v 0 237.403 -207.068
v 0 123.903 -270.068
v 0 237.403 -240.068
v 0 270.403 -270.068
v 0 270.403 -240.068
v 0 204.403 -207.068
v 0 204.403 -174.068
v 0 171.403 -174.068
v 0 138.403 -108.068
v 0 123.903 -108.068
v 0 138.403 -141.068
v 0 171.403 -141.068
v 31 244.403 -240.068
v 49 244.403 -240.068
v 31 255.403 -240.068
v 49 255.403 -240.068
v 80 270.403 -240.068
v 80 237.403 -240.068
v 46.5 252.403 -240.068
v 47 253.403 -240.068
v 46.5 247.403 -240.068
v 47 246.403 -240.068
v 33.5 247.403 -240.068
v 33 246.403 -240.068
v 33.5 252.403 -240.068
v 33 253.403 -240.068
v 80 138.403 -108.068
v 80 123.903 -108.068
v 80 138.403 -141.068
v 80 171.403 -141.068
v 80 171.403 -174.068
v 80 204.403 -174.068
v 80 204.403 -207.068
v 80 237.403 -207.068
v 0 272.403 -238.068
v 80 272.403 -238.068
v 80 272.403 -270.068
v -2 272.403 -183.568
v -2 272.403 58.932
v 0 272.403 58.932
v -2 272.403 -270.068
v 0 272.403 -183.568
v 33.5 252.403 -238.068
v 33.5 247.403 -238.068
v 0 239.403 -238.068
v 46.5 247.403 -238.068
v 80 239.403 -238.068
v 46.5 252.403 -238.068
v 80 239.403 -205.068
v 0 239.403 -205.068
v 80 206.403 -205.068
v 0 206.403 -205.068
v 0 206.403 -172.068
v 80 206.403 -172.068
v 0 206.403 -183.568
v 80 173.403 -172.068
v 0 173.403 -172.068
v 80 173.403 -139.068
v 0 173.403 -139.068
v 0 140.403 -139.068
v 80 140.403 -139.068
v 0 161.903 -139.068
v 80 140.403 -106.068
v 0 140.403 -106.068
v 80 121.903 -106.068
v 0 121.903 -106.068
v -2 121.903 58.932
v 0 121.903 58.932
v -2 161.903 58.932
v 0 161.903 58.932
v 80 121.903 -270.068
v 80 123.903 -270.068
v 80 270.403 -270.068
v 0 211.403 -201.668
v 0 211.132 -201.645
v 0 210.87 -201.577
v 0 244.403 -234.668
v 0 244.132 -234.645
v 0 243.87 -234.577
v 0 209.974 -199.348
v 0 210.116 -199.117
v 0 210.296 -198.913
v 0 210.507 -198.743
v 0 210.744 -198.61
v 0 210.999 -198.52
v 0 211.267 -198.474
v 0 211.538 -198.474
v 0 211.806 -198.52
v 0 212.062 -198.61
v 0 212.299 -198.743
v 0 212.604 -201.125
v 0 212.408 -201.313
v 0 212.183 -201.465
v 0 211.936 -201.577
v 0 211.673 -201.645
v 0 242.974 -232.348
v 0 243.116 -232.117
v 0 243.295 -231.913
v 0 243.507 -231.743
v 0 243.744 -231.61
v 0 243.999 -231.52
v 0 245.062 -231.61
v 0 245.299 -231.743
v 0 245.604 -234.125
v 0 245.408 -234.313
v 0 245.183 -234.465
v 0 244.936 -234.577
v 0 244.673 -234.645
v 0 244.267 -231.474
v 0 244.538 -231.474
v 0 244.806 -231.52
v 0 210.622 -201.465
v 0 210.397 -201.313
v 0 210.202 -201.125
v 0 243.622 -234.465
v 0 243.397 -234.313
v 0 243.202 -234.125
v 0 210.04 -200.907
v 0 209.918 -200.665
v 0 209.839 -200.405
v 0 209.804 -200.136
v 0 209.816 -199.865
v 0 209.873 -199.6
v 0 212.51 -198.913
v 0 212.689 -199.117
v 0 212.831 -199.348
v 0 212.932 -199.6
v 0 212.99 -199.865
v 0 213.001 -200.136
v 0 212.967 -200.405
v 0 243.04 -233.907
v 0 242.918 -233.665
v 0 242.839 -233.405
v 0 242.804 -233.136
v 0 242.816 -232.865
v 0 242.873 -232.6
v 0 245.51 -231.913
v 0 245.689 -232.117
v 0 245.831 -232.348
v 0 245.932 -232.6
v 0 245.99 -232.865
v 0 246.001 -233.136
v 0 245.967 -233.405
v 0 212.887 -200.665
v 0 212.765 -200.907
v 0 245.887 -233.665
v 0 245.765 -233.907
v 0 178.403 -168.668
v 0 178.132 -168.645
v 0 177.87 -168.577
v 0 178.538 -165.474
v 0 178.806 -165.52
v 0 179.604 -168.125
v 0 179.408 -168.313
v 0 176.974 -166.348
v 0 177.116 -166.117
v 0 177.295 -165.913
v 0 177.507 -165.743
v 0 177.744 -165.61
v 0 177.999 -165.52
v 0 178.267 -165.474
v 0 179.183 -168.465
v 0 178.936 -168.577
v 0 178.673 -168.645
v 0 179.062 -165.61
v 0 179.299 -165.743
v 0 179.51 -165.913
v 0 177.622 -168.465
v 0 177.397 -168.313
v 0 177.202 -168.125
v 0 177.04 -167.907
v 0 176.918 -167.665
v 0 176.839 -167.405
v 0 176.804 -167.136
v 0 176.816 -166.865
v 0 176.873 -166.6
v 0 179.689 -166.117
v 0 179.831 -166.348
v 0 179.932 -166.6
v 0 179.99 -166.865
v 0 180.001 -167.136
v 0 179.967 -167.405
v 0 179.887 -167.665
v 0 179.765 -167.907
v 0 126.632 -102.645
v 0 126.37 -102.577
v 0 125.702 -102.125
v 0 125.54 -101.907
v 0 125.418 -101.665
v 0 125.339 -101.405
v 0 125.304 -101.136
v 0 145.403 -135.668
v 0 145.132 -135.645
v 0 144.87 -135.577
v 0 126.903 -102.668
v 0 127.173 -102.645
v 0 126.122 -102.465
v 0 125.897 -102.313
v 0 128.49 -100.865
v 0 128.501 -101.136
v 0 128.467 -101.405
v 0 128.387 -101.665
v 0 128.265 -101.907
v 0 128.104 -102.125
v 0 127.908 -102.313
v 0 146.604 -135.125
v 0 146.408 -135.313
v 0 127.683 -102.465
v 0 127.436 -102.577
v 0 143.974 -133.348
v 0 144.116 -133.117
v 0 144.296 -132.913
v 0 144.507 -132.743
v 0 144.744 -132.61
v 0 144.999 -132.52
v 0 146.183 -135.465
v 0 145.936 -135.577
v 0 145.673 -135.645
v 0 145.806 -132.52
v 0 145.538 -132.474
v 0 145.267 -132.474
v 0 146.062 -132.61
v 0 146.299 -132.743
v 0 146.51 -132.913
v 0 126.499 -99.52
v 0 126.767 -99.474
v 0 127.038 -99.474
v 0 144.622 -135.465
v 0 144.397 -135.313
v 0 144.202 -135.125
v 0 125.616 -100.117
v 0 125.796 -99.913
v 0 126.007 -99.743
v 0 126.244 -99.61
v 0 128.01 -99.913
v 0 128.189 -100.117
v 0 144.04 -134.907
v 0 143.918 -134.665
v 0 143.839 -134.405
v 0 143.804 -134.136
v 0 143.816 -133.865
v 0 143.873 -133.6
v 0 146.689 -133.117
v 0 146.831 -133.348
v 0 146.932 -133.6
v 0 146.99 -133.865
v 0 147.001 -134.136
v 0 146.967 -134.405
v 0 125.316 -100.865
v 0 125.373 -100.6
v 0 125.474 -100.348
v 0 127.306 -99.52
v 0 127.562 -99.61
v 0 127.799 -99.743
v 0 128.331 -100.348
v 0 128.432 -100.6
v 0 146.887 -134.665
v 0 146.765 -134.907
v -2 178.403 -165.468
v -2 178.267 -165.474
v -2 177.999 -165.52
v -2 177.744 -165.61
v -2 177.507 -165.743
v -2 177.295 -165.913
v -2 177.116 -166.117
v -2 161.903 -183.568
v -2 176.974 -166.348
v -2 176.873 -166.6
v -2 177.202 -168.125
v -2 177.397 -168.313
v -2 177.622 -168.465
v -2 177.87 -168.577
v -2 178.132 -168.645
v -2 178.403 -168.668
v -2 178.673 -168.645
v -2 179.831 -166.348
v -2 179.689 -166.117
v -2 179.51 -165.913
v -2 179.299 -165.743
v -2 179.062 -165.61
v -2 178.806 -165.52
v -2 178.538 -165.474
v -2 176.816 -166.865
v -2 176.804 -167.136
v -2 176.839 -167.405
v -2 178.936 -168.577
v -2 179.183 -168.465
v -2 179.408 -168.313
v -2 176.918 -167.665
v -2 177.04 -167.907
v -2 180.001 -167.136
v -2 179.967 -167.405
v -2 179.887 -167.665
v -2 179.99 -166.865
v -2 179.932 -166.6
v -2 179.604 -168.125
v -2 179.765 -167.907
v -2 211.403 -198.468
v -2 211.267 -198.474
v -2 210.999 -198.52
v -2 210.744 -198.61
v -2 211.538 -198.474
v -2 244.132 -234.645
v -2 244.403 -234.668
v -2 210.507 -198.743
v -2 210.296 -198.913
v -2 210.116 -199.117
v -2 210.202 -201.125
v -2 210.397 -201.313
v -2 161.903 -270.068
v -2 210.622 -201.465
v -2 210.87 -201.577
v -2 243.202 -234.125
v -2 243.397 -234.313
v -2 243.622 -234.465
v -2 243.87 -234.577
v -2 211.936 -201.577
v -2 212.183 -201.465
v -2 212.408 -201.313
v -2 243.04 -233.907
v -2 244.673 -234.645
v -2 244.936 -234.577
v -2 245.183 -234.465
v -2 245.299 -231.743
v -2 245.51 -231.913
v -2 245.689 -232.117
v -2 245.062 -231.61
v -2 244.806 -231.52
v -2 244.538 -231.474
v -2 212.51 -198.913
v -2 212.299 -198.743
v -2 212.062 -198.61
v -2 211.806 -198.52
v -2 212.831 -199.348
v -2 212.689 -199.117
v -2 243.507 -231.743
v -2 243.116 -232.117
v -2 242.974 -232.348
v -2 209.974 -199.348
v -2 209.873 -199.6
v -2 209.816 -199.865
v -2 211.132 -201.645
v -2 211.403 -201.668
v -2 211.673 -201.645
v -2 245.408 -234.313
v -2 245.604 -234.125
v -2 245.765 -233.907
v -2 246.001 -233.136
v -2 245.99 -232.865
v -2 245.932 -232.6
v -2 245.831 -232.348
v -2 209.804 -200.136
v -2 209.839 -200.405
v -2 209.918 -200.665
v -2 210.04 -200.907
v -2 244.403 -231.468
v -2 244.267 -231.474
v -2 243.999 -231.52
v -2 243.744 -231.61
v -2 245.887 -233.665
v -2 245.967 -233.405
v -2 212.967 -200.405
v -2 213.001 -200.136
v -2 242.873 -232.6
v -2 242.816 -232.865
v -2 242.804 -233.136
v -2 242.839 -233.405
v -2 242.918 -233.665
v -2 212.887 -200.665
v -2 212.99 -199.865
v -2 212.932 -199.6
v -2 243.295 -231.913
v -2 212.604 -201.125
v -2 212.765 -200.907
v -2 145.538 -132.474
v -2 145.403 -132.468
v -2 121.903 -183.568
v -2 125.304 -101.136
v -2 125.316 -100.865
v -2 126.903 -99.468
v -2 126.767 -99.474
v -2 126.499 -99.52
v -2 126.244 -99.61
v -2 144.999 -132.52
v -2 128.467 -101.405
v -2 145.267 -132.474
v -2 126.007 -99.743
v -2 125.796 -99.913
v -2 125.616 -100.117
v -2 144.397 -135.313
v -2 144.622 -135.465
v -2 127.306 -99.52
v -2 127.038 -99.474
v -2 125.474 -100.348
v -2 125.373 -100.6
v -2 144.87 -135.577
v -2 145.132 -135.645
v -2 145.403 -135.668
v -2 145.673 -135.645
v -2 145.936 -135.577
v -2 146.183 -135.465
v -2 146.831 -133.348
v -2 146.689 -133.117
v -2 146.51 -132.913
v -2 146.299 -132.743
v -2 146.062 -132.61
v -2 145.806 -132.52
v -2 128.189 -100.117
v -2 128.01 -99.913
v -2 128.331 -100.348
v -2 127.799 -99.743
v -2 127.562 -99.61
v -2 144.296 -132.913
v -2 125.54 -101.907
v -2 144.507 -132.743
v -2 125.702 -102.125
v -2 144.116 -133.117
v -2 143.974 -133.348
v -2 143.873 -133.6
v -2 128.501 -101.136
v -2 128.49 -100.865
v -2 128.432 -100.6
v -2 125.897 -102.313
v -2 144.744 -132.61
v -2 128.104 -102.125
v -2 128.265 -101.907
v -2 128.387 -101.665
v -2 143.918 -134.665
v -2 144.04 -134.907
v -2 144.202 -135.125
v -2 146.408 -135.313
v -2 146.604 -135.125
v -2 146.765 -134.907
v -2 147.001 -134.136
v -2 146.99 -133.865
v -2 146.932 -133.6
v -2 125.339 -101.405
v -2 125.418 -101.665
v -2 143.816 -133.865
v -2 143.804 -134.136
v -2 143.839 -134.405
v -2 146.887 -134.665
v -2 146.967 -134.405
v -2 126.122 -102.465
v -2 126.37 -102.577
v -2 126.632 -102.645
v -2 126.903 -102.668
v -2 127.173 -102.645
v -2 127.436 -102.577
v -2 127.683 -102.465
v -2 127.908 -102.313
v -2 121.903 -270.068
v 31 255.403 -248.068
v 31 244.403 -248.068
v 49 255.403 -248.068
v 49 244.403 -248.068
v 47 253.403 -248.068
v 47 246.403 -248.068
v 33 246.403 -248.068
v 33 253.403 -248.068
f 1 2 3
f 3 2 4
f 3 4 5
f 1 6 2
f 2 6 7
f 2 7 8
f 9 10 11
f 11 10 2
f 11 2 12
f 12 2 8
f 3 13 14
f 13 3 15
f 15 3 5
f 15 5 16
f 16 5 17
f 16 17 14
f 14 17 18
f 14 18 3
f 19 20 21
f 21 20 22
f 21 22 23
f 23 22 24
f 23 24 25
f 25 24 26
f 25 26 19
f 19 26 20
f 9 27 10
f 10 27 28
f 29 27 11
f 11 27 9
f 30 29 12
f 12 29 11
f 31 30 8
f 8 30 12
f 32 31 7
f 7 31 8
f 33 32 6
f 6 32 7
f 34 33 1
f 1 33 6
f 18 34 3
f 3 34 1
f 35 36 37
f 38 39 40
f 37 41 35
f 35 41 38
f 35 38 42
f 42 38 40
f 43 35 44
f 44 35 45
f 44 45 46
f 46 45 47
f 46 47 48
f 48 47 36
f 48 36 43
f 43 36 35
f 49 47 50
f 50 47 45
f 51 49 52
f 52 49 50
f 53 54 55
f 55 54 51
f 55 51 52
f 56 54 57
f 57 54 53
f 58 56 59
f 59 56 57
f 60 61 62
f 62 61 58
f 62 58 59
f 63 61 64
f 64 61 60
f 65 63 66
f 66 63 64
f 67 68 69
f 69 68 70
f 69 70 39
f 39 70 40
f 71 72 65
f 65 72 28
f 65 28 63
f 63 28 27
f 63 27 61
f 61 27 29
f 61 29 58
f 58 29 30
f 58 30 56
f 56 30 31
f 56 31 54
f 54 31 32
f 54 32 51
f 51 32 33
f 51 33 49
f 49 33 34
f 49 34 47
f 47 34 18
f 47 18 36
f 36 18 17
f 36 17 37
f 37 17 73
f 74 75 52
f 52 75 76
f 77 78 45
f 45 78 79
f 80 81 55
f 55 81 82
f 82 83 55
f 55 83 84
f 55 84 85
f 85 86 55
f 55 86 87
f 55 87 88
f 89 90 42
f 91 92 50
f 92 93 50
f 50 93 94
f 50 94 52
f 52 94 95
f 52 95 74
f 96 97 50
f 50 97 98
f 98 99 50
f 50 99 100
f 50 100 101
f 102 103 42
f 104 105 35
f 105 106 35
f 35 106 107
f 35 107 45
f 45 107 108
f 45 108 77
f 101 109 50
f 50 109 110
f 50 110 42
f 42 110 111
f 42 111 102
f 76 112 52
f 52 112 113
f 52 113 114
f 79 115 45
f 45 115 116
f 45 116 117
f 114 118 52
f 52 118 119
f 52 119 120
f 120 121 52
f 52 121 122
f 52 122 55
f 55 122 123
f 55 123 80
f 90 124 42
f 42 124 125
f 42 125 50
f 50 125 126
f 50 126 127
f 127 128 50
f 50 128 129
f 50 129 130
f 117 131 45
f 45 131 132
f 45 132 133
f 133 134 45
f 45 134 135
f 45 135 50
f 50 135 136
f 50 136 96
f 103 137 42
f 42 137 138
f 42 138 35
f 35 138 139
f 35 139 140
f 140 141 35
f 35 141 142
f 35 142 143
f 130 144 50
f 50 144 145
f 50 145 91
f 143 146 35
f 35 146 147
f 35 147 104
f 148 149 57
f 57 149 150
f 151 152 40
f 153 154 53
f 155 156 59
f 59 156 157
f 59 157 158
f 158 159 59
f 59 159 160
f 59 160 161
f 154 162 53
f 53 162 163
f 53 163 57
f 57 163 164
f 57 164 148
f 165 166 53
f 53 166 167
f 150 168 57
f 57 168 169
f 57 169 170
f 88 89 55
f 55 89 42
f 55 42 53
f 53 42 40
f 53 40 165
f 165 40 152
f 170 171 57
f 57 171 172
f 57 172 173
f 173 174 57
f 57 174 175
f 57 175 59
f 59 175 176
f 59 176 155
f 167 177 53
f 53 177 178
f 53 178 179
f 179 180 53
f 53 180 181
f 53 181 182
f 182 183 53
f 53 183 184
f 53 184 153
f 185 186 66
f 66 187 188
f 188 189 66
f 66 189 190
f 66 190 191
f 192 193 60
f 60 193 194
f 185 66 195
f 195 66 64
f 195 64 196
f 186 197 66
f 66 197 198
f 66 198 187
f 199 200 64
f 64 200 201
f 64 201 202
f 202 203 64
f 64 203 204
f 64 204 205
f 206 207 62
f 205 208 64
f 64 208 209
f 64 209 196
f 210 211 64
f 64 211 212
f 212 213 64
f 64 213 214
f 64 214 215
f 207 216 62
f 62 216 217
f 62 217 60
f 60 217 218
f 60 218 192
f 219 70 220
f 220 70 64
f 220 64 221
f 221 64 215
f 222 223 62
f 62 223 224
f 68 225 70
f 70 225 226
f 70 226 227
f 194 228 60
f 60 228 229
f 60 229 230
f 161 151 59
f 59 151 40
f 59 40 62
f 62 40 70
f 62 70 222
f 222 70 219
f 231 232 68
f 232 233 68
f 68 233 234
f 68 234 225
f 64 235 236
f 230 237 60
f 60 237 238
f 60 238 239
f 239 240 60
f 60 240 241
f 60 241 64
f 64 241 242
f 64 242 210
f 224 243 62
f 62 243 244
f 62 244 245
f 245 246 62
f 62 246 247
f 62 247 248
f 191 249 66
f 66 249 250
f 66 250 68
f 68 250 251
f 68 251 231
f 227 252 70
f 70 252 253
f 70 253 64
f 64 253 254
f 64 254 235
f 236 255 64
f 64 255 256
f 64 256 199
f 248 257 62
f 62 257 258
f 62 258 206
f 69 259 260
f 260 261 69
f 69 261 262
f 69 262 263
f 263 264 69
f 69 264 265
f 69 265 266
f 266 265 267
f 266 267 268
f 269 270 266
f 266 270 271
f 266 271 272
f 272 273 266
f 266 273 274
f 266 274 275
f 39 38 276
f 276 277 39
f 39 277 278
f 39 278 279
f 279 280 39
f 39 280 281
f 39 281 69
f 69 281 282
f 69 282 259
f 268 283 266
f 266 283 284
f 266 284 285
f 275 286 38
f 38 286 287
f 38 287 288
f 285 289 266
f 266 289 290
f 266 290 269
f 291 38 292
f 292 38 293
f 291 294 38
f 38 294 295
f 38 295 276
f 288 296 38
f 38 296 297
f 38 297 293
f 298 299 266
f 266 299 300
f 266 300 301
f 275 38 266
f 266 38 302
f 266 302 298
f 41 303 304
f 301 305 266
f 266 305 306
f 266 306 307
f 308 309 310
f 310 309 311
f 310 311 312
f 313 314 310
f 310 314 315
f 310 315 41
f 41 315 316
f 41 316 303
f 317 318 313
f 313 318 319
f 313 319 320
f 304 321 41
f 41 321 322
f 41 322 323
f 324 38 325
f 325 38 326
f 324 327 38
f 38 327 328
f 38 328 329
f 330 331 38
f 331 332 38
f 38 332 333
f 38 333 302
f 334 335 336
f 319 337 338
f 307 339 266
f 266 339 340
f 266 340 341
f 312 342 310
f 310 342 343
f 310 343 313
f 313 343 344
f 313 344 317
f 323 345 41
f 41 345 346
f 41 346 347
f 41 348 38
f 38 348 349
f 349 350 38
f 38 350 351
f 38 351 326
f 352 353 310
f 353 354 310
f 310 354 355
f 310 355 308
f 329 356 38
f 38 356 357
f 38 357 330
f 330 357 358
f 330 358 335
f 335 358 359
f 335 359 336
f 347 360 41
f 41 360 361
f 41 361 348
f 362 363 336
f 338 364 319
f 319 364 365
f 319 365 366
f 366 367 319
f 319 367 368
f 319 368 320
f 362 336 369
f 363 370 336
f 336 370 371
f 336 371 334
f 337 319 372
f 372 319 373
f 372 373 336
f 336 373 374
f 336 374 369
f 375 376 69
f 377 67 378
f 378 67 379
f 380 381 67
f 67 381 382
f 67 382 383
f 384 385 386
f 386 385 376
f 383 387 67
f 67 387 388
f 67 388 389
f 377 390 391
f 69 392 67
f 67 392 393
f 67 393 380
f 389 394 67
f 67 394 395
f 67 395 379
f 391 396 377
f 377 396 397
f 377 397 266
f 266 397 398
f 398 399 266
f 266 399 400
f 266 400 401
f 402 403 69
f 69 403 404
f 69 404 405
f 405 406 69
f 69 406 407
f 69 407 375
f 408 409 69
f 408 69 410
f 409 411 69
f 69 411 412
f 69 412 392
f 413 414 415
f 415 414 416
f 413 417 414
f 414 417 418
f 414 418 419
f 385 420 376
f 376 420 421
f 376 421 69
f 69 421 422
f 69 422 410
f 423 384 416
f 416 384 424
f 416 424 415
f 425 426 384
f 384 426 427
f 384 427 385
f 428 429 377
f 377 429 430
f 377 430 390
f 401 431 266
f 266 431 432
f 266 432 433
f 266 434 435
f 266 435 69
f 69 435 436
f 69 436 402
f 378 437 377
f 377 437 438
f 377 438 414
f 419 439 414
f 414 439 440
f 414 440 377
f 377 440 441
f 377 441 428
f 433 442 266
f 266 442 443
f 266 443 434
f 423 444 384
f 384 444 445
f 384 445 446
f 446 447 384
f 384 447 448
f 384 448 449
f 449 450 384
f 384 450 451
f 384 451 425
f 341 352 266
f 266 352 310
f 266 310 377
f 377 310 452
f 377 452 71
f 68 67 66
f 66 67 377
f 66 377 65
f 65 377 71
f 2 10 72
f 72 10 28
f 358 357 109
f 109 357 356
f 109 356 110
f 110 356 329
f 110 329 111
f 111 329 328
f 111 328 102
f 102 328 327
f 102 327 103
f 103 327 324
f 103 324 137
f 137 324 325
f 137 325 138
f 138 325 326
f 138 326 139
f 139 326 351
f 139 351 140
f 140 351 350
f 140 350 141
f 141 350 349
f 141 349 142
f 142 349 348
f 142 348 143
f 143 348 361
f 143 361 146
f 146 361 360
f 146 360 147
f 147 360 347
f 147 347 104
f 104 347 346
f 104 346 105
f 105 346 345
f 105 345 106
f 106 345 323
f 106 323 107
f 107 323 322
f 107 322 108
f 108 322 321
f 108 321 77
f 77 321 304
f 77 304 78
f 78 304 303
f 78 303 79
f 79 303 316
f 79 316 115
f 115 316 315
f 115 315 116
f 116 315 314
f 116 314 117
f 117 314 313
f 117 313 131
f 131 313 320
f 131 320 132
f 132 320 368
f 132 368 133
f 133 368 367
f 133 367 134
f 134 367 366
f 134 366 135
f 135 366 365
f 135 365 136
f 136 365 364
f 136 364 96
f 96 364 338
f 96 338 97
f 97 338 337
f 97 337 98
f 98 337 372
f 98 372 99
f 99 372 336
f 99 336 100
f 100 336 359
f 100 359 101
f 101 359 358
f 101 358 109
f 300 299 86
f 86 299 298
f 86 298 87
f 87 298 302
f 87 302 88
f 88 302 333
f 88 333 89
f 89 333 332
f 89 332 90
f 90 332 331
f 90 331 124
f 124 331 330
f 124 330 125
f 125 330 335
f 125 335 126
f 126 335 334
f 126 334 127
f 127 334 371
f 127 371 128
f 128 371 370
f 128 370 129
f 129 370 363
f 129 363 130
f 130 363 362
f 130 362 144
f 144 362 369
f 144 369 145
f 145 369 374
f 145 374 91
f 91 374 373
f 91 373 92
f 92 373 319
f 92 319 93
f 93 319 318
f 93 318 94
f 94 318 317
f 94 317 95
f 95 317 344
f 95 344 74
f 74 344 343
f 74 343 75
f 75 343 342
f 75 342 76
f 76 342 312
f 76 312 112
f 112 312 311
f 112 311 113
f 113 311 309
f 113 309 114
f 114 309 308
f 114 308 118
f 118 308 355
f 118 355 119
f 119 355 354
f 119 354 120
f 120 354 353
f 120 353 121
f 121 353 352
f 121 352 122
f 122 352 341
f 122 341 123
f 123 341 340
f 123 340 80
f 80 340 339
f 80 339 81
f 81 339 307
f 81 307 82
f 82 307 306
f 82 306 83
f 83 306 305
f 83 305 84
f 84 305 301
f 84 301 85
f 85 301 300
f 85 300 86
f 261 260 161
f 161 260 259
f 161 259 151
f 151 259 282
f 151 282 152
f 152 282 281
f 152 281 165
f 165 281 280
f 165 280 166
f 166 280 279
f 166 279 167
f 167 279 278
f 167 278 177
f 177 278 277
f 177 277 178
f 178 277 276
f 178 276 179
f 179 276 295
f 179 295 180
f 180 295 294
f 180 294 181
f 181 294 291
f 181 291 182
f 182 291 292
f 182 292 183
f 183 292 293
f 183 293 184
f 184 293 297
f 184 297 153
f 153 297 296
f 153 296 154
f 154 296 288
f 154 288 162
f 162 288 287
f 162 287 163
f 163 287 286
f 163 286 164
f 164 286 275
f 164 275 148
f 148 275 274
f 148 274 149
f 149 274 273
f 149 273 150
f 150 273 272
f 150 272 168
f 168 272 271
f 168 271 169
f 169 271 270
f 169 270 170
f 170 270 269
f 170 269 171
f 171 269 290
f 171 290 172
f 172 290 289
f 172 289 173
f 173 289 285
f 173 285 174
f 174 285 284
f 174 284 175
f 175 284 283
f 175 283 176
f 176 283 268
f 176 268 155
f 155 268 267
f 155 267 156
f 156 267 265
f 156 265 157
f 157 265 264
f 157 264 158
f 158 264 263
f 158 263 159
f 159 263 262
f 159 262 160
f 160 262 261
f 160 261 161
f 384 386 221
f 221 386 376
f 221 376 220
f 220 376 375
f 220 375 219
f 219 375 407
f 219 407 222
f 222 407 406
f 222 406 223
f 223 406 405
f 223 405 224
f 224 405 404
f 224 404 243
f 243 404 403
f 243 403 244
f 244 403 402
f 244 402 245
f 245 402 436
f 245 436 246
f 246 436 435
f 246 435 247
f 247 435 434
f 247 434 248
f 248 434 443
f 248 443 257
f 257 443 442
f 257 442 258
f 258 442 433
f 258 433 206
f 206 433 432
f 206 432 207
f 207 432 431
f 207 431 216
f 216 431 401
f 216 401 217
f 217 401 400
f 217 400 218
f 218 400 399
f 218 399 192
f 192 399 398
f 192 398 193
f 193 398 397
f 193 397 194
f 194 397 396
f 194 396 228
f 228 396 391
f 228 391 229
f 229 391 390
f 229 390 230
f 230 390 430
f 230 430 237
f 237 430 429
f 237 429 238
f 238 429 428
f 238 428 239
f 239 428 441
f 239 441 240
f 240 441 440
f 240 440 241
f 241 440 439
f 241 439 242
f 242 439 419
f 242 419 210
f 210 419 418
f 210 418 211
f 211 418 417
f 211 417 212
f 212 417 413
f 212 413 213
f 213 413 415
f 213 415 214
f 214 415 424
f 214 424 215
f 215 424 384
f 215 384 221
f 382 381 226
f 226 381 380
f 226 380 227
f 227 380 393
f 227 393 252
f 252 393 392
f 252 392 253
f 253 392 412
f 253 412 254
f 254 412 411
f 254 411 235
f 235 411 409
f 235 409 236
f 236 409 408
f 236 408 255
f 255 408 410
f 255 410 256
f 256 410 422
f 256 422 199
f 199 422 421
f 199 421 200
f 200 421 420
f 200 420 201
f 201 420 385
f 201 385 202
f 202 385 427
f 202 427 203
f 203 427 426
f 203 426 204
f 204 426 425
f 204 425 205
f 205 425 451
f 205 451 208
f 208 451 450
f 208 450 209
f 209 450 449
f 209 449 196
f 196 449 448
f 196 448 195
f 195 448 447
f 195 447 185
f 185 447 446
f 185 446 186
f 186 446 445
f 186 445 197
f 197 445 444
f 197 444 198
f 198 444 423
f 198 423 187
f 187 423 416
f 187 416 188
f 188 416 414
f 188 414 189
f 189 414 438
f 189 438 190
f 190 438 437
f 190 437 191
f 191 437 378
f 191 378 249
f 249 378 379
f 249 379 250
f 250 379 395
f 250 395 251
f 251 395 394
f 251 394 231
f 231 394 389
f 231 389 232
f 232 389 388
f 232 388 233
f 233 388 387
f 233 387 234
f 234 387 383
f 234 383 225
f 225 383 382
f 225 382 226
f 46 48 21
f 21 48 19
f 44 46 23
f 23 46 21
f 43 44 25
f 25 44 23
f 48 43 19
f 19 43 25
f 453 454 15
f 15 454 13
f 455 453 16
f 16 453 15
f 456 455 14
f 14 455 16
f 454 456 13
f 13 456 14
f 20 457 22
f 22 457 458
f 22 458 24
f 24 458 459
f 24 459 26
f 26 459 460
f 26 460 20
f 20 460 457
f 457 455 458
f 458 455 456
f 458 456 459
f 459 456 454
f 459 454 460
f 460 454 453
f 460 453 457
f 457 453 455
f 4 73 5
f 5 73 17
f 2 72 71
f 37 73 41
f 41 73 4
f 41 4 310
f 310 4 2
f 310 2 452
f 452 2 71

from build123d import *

# Parameters (mm, degrees)
BOSS_EXTRUDE1_DEPTH = 80
SKETCH3_W           = 299
SKETCH3_H           = 299
BOSS_EXTRUDE2_DEPTH = 2
SKETCH4_W           = 82
SKETCH4_H           = 299
BOSS_EXTRUDE3_DEPTH = 2
SKETCH6_W           = 299
SKETCH6_H           = 150.5
CUT_EXTRUDE1_DEPTH  = 82
SKETCH7_W           = 132
SKETCH7_H           = 2
BOSS_EXTRUDE4_DEPTH = 80
SKETCH8_R           = 1.6
CUT_EXTRUDE2_DEPTH  = 2
SKETCH12_W          = 13
SKETCH12_H          = 5
CUT_EXTRUDE4_DEPTH  = 2
SKETCH14_W          = 18
SKETCH14_H          = 11
SKETCH14_W_2        = 14
SKETCH14_H_2        = 7
BOSS_EXTRUDE5_DEPTH = 10
BOSS_EXTRUDE6_DEPTH = 30
SKETCH16_W          = 80
SKETCH16_H          = 2
BOSS_EXTRUDE7_DEPTH = 30


with BuildPart() as part:
    # Sketch1 → Boss-Extrude1 (new body)
    with BuildSketch(Plane(origin=(0, 0, 0), x_dir=(0, 0, -1), z_dir=(1, 0, 0))):
        Polygon((-23.931657395, -26.597399746), (-23.931657395, 6.402600254), (9.068342605, 6.402600254), (9.068342605, 39.402600254), (42.068342605, 39.402600254), (42.068342605, 72.402600254), (75.068342605, 72.402600254), (75.068342605, 105.402600254), (108.068342605, 105.402600254), (108.068342605, 138.402600254), (141.068342605, 138.402600254), (141.068342605, 171.402600254), (174.068342605, 171.402600254), (174.068342605, 204.402600254), (207.068342605, 204.402600254), (207.068342605, 237.402600254), (240.068342605, 237.402600254), (240.068342605, 272.402600254), (238.068342605, 272.402600254), (238.068342605, 239.402600254), (205.068342605, 239.402600254), (205.068342605, 206.402600254), (172.068342605, 206.402600254), (172.068342605, 173.402600254), (139.068342605, 173.402600254), (139.068342605, 140.402600254), (106.068342605, 140.402600254), (106.068342605, 107.402600254), (73.068342605, 107.402600254), (73.068342605, 74.402600254), (40.068342605, 74.402600254), (40.068342605, 41.402600254), (7.068342605, 41.402600254), (7.068342605, 8.402600254), (-25.931657395, 8.402600254), (-25.931657395, -24.597399746), (-58.931657395, -24.597399746), (-58.931657395, -26.597399746), align=None)
    extrude(amount=BOSS_EXTRUDE1_DEPTH)

    # Sketch3 → Boss-Extrude2 (add)
    with BuildSketch(Plane.ZY):
        with Locations((-90.568342605, 122.902600254)):
            Rectangle(SKETCH3_W, SKETCH3_H)
    extrude(amount=BOSS_EXTRUDE2_DEPTH)

    # Sketch4 → Boss-Extrude3 (add)
    with BuildSketch(Plane.XZ.offset(26.597399746)):
        with Locations((39, -90.568342605)):
            Rectangle(SKETCH4_W, SKETCH4_H)
    extrude(amount=BOSS_EXTRUDE3_DEPTH)

    # Sketch6 → Cut-Extrude1 (cut)
    with BuildSketch(Plane.ZY.offset(2)):
        with Locations((-90.568342605, 46.652600254)):
            Rectangle(SKETCH6_W, SKETCH6_H)
    extrude(amount=-CUT_EXTRUDE1_DEPTH, mode=Mode.SUBTRACT)

    # Sketch7 → Boss-Extrude4 (add)
    with BuildSketch(Plane(origin=(0, 0, 0), x_dir=(0, 0, -1), z_dir=(1, 0, 0))):
        with Locations((174.068342605, 122.902600254)):
            Rectangle(SKETCH7_W, SKETCH7_H)
    extrude(amount=BOSS_EXTRUDE4_DEPTH)

    # Sketch8 → Cut-Extrude2 (cut)
    with BuildSketch(Plane(origin=(0, 0, 0), x_dir=(0, 0, -1), z_dir=(1, 0, 0))):
        with Locations((101.068342605, 126.902600254)):
            Circle(SKETCH8_R)
        with Locations((134.068342605, 145.402600254)):
            Circle(SKETCH8_R)
        with Locations((167.068342605, 178.402600254)):
            Circle(SKETCH8_R)
        with Locations((200.068342605, 211.402600254)):
            Circle(SKETCH8_R)
        with Locations((233.068342605, 244.402600254)):
            Circle(SKETCH8_R)
    extrude(amount=-CUT_EXTRUDE2_DEPTH, mode=Mode.SUBTRACT)

    # Sketch12 → Cut-Extrude4 (cut)
    with BuildSketch(Plane.XY.offset(-238.068342605)):
        with Locations((40, 249.902600254)):
            Rectangle(SKETCH12_W, SKETCH12_H)
    extrude(amount=-CUT_EXTRUDE4_DEPTH, mode=Mode.SUBTRACT)

    # Sketch14 → Boss-Extrude5 (add)
    with BuildSketch(Plane.XY.offset(-238.068342605)):
        with Locations((40, 249.902600254)):
            Rectangle(SKETCH14_W, SKETCH14_H)
        with Locations((40, 249.902600254)):
            Rectangle(SKETCH14_W_2, SKETCH14_H_2, mode=Mode.SUBTRACT)
    extrude(amount=-BOSS_EXTRUDE5_DEPTH)

    # Sketch15 → Boss-Extrude6 (add)
    with BuildSketch(Plane(origin=(0, 0, -240.068342605), x_dir=(-1, 0, 0), z_dir=(0, 0, -1))):
        Polygon((-80, 272.402600254), (2, 272.402600254), (2, 121.902600254), (0, 121.902600254), (0, 270.402600254), (-80, 270.402600254), align=None)
    extrude(amount=BOSS_EXTRUDE6_DEPTH)

    # Sketch16 → Boss-Extrude7 (add)
    with BuildSketch(Plane(origin=(0, 0, -240.068342605), x_dir=(-1, 0, 0), z_dir=(0, 0, -1))):
        with Locations((-40, 122.902600254)):
            Rectangle(SKETCH16_W, SKETCH16_H)
    extrude(amount=BOSS_EXTRUDE7_DEPTH)


solid = part.part
